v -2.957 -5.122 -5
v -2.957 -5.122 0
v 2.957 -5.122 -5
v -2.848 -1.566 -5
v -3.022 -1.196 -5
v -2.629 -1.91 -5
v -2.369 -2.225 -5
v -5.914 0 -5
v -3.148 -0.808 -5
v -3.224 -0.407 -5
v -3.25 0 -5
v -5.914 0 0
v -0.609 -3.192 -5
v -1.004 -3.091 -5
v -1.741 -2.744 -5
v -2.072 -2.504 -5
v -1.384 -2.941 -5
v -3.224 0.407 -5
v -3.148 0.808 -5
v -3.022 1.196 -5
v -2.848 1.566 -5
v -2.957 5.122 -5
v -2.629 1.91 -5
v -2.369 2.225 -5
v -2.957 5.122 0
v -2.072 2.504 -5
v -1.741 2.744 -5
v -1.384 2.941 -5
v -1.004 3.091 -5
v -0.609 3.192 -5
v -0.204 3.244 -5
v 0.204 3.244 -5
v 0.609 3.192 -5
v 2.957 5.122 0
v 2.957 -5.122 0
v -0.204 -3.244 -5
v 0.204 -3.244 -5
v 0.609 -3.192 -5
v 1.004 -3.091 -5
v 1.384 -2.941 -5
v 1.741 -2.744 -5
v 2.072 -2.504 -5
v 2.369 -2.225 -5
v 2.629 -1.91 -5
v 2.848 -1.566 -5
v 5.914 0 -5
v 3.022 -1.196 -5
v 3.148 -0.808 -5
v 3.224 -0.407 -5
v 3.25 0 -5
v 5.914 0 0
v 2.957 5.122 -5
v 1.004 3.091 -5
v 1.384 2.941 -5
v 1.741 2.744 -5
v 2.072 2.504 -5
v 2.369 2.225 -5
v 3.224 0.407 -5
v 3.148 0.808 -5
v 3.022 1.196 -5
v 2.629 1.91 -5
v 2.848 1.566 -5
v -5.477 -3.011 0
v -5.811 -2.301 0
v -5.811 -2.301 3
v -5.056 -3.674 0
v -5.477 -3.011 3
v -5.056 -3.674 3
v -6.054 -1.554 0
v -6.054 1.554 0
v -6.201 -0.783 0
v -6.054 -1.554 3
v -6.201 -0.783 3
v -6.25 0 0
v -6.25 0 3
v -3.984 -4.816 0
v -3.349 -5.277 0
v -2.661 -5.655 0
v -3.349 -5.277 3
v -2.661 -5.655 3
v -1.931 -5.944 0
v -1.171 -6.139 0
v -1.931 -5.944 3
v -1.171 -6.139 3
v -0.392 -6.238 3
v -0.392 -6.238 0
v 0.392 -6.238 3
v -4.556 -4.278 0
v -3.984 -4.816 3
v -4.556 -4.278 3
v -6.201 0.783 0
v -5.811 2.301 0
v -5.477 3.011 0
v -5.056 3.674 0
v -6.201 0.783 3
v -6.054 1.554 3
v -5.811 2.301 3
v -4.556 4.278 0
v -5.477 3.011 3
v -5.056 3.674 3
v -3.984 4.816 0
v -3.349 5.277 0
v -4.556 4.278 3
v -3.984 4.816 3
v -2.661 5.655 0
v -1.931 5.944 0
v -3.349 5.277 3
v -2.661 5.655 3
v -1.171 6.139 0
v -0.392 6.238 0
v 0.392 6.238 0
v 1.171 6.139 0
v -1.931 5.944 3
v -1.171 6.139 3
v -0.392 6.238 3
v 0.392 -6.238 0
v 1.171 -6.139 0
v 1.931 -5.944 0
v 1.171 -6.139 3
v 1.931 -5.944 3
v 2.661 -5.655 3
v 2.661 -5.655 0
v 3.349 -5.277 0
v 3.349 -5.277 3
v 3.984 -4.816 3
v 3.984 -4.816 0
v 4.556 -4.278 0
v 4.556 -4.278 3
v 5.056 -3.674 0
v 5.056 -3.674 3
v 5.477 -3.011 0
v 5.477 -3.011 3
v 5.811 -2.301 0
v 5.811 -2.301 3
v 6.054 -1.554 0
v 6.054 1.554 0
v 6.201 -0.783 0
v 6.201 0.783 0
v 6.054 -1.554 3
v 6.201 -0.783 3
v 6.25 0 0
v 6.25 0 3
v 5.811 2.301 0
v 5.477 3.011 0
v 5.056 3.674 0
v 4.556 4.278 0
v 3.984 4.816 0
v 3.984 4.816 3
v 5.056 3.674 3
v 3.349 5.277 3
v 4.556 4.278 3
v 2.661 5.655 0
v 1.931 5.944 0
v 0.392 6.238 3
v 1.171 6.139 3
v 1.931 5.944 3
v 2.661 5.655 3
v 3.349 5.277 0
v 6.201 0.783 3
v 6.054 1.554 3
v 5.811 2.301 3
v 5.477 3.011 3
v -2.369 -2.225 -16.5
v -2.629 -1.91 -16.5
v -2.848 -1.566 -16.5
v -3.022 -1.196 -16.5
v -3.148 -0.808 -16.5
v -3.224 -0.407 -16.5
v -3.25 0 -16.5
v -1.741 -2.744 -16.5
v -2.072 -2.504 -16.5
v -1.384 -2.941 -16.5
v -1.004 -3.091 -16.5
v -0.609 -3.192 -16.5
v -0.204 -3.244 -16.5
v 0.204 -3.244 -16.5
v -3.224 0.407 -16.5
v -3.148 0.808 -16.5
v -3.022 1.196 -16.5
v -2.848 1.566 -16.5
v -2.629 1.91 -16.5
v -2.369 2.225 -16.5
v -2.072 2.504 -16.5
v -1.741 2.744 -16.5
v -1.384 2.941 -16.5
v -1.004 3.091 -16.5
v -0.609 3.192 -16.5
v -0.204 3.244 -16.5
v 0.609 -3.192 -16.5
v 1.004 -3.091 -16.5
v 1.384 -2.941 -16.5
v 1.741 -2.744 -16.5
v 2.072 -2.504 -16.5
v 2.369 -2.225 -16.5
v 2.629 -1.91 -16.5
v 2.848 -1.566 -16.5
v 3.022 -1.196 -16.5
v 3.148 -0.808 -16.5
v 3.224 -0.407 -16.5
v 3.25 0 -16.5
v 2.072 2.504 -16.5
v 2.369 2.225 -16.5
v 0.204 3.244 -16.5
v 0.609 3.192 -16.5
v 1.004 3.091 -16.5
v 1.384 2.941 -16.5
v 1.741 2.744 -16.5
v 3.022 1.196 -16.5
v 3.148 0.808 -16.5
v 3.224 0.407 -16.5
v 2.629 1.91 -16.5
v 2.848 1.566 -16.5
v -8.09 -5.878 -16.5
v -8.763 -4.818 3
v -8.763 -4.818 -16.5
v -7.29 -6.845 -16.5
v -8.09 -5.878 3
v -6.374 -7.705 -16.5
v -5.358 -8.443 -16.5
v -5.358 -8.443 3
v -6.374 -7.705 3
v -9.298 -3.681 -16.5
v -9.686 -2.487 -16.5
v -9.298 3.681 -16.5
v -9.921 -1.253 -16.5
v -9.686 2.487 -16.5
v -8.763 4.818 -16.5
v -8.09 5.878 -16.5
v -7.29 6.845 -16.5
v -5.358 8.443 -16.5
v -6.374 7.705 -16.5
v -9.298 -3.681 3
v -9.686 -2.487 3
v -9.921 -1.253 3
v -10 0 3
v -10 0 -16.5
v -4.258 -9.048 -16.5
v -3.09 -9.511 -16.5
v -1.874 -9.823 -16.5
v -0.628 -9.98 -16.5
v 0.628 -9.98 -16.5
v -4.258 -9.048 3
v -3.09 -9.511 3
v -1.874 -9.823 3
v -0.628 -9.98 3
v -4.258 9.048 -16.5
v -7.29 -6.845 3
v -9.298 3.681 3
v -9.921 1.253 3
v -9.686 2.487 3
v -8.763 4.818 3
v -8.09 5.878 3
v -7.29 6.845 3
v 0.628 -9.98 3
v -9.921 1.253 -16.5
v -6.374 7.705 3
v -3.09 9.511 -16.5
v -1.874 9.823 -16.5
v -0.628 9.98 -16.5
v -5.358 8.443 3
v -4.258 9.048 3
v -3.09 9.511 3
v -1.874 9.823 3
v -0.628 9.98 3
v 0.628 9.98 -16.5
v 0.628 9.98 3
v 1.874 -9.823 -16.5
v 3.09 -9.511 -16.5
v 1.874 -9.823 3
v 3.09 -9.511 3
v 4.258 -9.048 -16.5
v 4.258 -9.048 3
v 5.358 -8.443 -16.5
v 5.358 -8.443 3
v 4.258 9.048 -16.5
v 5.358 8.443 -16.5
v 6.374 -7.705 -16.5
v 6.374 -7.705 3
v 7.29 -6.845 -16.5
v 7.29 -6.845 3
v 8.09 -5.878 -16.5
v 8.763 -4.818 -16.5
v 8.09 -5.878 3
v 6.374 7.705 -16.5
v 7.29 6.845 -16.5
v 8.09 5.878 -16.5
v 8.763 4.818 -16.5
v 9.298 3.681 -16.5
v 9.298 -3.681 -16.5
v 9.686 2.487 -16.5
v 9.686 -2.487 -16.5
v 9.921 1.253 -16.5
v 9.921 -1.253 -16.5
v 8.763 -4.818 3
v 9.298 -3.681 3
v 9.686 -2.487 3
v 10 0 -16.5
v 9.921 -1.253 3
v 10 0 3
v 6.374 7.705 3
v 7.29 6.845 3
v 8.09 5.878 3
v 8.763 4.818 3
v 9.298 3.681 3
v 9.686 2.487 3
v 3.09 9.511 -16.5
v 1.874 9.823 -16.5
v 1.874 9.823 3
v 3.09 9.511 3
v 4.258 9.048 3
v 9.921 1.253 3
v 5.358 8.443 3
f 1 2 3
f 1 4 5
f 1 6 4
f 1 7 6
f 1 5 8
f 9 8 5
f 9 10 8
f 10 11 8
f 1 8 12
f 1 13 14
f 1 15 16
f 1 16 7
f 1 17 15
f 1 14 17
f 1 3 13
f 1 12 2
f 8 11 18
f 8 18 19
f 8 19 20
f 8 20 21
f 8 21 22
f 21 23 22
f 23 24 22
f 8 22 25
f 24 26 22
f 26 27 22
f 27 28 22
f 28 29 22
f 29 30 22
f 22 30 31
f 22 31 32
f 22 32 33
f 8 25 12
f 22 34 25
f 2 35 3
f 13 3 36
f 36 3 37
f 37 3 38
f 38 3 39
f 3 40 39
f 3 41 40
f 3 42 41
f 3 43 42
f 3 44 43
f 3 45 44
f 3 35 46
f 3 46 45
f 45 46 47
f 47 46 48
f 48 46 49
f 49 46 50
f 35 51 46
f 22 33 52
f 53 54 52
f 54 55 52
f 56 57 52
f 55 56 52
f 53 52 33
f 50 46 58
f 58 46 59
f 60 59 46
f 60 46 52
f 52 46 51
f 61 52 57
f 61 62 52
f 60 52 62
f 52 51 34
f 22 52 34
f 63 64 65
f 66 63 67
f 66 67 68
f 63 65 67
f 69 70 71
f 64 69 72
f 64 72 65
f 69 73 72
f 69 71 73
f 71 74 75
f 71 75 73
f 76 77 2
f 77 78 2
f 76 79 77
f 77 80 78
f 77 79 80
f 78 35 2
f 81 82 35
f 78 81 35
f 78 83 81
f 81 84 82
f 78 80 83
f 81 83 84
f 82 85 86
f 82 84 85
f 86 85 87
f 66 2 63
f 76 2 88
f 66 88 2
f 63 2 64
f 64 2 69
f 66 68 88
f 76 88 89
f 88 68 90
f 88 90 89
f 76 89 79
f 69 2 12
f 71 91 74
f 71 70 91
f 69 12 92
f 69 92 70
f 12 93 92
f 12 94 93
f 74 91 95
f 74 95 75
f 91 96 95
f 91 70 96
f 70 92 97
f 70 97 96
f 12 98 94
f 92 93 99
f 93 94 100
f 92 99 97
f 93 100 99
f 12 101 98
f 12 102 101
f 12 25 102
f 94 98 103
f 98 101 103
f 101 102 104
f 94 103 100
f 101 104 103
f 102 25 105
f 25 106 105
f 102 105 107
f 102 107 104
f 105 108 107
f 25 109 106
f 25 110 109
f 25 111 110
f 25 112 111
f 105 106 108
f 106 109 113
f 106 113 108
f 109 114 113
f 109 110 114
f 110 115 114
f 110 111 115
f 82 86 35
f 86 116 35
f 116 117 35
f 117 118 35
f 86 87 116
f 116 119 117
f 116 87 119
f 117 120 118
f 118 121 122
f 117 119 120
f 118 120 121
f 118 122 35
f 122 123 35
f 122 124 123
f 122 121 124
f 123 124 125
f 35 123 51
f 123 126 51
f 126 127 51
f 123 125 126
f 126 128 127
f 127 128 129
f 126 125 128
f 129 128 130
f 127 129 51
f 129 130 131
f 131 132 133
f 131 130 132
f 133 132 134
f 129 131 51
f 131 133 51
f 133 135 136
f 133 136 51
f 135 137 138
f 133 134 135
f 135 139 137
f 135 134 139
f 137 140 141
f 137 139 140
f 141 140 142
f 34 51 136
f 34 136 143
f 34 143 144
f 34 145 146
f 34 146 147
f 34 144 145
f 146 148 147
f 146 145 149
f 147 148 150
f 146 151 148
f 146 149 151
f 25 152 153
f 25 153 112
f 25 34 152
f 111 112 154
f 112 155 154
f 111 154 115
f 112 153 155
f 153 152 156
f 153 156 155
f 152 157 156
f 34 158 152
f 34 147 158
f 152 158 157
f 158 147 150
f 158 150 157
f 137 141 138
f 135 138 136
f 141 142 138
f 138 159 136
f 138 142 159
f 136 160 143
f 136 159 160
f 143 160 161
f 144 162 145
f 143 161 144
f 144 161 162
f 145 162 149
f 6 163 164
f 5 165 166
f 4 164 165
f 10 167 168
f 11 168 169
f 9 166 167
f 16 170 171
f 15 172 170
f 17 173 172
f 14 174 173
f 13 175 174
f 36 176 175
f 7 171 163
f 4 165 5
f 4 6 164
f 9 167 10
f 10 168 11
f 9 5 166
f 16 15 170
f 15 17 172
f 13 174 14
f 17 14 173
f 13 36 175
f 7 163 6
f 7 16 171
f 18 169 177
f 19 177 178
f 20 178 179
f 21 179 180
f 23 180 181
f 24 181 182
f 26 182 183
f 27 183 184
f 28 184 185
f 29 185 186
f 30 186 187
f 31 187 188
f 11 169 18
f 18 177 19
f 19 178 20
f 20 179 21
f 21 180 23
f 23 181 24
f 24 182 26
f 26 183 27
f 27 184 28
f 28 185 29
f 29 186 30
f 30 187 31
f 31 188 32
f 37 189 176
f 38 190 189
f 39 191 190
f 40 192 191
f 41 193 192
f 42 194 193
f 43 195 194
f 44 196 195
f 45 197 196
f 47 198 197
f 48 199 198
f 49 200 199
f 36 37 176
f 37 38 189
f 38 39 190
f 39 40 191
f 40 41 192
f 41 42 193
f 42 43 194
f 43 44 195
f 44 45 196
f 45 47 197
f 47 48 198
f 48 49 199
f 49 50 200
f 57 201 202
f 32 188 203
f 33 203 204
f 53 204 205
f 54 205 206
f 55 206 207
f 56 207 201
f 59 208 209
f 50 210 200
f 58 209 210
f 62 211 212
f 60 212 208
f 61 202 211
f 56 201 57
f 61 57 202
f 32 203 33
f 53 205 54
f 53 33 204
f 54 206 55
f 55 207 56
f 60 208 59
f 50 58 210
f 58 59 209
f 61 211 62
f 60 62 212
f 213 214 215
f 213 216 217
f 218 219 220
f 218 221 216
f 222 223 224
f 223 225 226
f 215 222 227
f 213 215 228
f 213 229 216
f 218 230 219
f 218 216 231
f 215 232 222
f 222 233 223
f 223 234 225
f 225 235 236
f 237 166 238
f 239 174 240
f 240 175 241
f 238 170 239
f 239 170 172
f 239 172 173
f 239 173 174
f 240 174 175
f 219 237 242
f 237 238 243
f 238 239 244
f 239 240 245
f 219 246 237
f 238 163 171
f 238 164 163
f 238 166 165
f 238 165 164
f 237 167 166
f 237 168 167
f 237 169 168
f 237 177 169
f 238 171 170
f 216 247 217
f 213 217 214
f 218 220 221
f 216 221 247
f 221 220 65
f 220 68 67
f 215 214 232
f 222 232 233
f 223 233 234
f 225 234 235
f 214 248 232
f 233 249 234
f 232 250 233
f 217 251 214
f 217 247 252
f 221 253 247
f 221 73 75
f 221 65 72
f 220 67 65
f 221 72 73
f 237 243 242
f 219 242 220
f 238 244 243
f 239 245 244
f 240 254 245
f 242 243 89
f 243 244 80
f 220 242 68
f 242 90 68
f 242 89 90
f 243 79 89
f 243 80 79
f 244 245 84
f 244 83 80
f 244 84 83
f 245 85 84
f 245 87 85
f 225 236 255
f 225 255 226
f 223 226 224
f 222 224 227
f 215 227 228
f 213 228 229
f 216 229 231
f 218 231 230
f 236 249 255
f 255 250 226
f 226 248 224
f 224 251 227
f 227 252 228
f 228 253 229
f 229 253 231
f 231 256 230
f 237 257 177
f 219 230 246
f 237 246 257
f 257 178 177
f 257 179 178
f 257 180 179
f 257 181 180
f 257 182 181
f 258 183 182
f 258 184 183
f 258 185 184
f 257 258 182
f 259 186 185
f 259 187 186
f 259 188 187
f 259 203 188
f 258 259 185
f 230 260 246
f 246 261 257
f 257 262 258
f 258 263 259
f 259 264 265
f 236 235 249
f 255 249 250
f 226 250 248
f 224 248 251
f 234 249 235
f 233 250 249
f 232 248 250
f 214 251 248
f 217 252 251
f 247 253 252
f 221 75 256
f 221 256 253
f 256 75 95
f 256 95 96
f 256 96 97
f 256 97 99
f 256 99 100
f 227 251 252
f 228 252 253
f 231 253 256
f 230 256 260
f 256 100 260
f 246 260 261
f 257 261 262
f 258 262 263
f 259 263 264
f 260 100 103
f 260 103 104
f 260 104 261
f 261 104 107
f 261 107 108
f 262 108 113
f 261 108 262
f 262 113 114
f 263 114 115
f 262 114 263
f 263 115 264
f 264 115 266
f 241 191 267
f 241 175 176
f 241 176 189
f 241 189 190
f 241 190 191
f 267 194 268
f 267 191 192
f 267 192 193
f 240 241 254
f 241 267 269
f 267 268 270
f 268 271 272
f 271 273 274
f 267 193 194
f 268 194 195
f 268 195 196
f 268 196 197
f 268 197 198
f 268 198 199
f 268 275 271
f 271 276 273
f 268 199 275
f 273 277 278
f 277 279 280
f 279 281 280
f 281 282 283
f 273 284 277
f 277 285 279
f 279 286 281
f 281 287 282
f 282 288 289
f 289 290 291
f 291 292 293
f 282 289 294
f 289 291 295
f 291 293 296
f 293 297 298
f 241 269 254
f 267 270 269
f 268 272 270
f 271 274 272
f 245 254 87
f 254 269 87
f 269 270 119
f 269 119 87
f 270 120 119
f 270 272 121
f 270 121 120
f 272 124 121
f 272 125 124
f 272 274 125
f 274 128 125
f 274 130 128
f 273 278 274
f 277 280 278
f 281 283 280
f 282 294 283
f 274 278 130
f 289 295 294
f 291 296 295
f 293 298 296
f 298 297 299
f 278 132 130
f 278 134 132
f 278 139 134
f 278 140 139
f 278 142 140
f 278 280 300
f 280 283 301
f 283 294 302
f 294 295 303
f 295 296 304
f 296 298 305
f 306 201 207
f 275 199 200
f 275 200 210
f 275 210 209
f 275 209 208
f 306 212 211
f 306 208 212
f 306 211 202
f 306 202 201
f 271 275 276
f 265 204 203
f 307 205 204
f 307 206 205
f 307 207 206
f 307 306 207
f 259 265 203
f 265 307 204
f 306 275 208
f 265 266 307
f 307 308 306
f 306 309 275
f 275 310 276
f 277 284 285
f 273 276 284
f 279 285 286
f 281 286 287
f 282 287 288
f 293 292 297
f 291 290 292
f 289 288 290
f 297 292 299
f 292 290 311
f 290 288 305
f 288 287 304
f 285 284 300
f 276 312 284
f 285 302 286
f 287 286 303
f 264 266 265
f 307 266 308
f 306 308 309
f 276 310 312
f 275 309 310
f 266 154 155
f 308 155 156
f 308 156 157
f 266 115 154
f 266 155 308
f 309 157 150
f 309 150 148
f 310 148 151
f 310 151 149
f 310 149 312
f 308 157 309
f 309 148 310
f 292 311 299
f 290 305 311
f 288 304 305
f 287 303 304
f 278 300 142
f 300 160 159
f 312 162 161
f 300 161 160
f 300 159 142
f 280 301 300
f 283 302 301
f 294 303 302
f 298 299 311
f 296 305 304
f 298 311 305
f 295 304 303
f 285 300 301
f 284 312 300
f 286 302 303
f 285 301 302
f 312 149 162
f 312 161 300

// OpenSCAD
$fn = 50;

difference() {
	union() {
		translate(v = [0, 0, -16.5]) {
			cylinder(h = 19.5, r = 10.0);
		}
	}
	union() {
		translate(v = [0, 0, 0]) {
			rotate(a = [0, 0, 0]) {
				difference() {
					union() {
						translate(v = [0, 0, -5]) {
							linear_extrude(height = 5) {
								polygon(points = [[5.914249999999999, 0.0], [2.957125, 5.1218907443321156], [-2.9571249999999982, 5.1218907443321156], [-5.914249999999999, 7.242867331857232e-16], [-2.9571250000000022, -5.121890744332115], [2.9571249999999956, -5.121890744332118]]);
							}
						}
					}
					union();
				}
			}
		}
		#cylinder(h = 3, r = 6.25);
		#translate(v = [0, 0, -100.0]) {
			cylinder(h = 200, r = 3.25);
		}
	}
}
